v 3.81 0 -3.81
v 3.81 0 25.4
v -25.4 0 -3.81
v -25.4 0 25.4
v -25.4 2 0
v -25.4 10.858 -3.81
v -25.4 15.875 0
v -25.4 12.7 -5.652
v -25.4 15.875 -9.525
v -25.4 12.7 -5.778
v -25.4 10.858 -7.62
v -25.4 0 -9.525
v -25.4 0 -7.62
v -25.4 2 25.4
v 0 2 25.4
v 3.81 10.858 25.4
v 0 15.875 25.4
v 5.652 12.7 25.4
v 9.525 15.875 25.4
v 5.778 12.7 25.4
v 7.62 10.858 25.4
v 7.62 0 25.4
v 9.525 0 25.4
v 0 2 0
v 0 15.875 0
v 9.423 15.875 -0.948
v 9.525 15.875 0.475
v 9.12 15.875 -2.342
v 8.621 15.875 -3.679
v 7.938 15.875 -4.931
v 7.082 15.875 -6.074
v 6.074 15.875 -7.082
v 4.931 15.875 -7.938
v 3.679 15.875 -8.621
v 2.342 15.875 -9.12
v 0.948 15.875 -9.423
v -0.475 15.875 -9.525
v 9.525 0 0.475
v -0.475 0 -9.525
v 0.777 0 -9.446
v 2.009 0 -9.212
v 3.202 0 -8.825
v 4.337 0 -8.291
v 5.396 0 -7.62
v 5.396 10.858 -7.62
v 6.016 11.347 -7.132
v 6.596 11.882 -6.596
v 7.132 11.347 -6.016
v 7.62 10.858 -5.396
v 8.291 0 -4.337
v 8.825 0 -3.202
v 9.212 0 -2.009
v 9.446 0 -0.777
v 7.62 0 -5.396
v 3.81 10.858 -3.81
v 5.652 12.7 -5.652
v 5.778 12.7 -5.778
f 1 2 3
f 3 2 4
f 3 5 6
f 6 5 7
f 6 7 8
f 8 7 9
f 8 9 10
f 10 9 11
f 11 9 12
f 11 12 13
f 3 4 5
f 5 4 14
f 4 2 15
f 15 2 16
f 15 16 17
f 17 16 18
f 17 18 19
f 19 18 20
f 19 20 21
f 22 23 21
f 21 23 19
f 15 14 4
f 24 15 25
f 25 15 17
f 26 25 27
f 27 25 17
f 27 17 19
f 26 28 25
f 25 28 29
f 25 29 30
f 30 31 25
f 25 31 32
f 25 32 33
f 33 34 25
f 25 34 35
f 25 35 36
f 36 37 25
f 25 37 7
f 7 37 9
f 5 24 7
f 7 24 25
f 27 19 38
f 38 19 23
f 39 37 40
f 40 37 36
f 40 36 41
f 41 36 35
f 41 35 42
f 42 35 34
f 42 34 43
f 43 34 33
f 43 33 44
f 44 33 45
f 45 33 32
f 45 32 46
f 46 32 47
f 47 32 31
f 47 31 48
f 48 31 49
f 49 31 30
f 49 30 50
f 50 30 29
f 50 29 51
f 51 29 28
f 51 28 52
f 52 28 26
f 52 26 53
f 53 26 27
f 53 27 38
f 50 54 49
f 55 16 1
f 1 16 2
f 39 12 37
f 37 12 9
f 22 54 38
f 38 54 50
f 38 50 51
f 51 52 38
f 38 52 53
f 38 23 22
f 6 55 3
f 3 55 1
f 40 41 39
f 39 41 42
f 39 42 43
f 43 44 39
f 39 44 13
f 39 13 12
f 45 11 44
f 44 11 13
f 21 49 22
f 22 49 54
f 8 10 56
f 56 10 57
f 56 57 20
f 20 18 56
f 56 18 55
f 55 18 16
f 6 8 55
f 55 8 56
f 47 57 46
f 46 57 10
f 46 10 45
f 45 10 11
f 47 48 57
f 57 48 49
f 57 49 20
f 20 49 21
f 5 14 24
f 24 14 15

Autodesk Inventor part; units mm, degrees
ref_plane "YZ Plane" through (0, 0, 0) normal (1, 0, 0) x (0, 1, 0)
ref_plane "XZ Plane" through (0, 0, 0) normal (0, 1, 0) x (-1, 0, 0)
ref_plane "XY Plane" through (0, 0, 0) normal (0, 0, 1) x (1, 0, 0)
sketch "Sketch1" plane through (0, 0, 0) normal (0, 1, 0) x (-1, 0, 0)
  line L0 (0, 0) -> (-9.525, 0)
  line L1 (-9.525, 0) -> (-9.525, -9.525)
  line L2 (-9.525, -9.525) -> (0, -9.525)
  line L3 (0, -9.525) -> (0, 0)
  line L4 (0, 0) -> (25.4, 0)
  line L5 (25.4, 0) -> (25.4, -9.525)
  line L6 (25.4, -9.525) -> (0, -9.525)
  line L7 (0, -9.525) -> (0, 0)
  line L8 (0, 0) -> (-9.525, 0)
  line L9 (-9.525, 0) -> (-9.525, 25.4)
  line L10 (-9.525, 25.4) -> (0, 25.4)
  line L11 (0, 25.4) -> (0, 0)
  dimension "d0" = 9.525
  dimension "d1" = 9.525
  dimension "d2" = 25.4
  dimension "d3" = 9.525
  dimension "d4" = 9.525
  dimension "d5" = 25.4
extrude "Extrusion1" add sketch "Sketch1" along normal blind 15.875
sketch "Sketch2" plane through (0, 0, 0) normal (0, -1, 0) x (1, 0, 0)
  line L0 (0, 0) -> (7.62, 0) construction
  line L1 (7.62, 0) -> (7.62, -7.62) construction
  line L2 (7.62, -7.62) -> (0, -7.62) construction
  line L3 (0, -7.62) -> (0, 0) construction
  line L4 (7.62, -7.62) -> (3.81, -7.62)
  line L5 (3.81, -7.62) -> (3.81, 25.4)
  line L6 (3.81, 25.4) -> (7.62, 25.4)
  line L7 (7.62, 25.4) -> (7.62, -7.62)
  line L8 (7.62, -7.62) -> (-25.4, -7.62)
  line L9 (-25.4, -7.62) -> (-25.4, -3.81)
  line L10 (-25.4, -3.81) -> (7.62, -3.81)
  line L11 (7.62, -3.81) -> (7.62, -7.62)
  dimension "d8" = 7.62
  dimension "d9" = 7.62
  dimension "d10" = 3.81
  dimension "d11" = 33.02
  dimension "d12" = 33.02
  dimension "d13" = 3.81
extrude "Extrusion2" cut sketch "Sketch2" against normal blind 12.7
fillet "Fillet1" radius 10 1 edges at (9.525, 7.9375, -9.525)
chamfer "Chamfer1" distance 1.8415 angle 45 4 edges at (7.62, 12.7, 10.0019) (3.81, 12.7, 10.795) (-10.795, 12.7, -3.81) (-10.0019, 12.7, -7.62)
sketch "Sketch3" plane through (0, 0, 0) normal (0, -1, 0) x (1, 0, 0)
  line L0 (0, 0) -> (-25.4, 0)
  line L1 (-25.4, 0) -> (-25.4, 25.4)
  line L2 (-25.4, 25.4) -> (0, 25.4)
  line L3 (0, 25.4) -> (0, 0)
  dimension "d20" = 25.4
  dimension "d21" = 25.4
extrude "Extrusion3" add sketch "Sketch3" against normal blind 2
properties part number "Corner Piece"
